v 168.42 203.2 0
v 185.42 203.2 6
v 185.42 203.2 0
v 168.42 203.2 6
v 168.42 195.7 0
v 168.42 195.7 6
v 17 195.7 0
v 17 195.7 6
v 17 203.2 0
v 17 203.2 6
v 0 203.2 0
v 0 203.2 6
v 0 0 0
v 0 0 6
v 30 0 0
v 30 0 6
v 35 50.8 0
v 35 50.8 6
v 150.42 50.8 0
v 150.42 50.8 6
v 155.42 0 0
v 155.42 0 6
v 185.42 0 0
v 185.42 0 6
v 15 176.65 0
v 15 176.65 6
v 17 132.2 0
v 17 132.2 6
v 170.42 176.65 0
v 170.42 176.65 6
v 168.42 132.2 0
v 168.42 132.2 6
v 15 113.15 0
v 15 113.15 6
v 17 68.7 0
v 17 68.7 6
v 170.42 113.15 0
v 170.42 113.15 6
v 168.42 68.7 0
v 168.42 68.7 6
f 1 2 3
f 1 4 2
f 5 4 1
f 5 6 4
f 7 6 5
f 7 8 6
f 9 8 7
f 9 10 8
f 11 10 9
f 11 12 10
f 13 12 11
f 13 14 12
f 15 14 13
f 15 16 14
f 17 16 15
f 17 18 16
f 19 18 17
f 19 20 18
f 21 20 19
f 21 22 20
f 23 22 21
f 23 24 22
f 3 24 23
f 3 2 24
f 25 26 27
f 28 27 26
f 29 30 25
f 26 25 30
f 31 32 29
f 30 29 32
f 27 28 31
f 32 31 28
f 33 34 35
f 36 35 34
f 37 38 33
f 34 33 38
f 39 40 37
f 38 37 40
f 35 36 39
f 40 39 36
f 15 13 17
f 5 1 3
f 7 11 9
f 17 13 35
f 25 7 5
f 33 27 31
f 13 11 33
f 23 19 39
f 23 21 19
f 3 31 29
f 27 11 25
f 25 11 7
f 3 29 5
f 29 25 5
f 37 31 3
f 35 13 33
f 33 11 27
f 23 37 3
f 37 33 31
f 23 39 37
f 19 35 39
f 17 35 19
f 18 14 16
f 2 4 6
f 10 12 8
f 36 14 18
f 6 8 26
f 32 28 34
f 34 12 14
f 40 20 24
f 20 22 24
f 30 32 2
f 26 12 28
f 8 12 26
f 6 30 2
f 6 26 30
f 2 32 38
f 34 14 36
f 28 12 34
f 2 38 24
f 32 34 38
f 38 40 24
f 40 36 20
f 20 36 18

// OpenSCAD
// file: dimensions.scad
INCHES_TO_MM = 25.4;
SHELF_THICKNESS = 7.5;
SHELF_DEPTH = 7.3 * INCHES_TO_MM;
// main file
include <dimensions.scad>

SHELF_1_HEIGHT = 3 * INCHES_TO_MM;
SHELF_2_HEIGHT = 2.5 * INCHES_TO_MM;
SHELF_3_HEIGHT = 2.5 * INCHES_TO_MM;
WALL_WIDTH = 15;
WALL_THICKNESS = 6;

// Create a 2D shape with cutouts using difference() in 2D
module side_panel_2d() {
    total_height = SHELF_1_HEIGHT + SHELF_2_HEIGHT + SHELF_3_HEIGHT;
    
    wall_inner_left = WALL_WIDTH;
    wall_inner_right = SHELF_DEPTH - WALL_WIDTH;
    
    cutout_0_bottom = 0;
    cutout_0_top = cutout_0_bottom + 2*INCHES_TO_MM;
    
    cutout_1_bottom = SHELF_1_HEIGHT - SHELF_THICKNESS;
    cutout_1_top = cutout_1_bottom + 1.75 * INCHES_TO_MM;
    
    cutout_2_bottom = SHELF_1_HEIGHT + SHELF_2_HEIGHT - SHELF_THICKNESS;
    cutout_2_top = cutout_2_bottom + 1.75 * INCHES_TO_MM;
    
    cutout_3_bottom = SHELF_1_HEIGHT + SHELF_2_HEIGHT + SHELF_3_HEIGHT - SHELF_THICKNESS;
    cutout_3_top = total_height;


    difference() {
        // Outer shape - could be a polygon or other 2D shape
        polygon(points=[[0,0], [SHELF_DEPTH,0], [SHELF_DEPTH, total_height], [0, total_height]]);
        polygon(points=[[30, cutout_0_bottom], [SHELF_DEPTH - 30, cutout_0_bottom], [SHELF_DEPTH - 35, cutout_0_top], [35, cutout_0_top]]);
        polygon(points=[[wall_inner_left + 2, cutout_1_bottom], [wall_inner_right - 2, cutout_1_bottom], [wall_inner_right, cutout_1_top], [wall_inner_left, cutout_1_top]]);
        polygon(points=[[wall_inner_left + 2, cutout_2_bottom], [wall_inner_right - 2, cutout_2_bottom], [wall_inner_right, cutout_2_top], [wall_inner_left, cutout_2_top]]);
        polygon(points=[[wall_inner_left + 2, cutout_3_bottom], [wall_inner_right - 2, cutout_3_bottom], [wall_inner_right - 2, cutout_3_top], [wall_inner_left + 2, cutout_3_top]]);
    }
}

// Then extrude the 2D shape to get your 3D object
module side_panel_3d() {
    linear_extrude(height=WALL_THICKNESS) side_panel_2d();
}

// Display the 3D side panel
side_panel_3d();

// color("red") translate([WALL_WIDTH + 3, SHELF_1_HEIGHT - SHELF_THICKNESS, -10]) cube([SHELF_DEPTH - 2*WALL_WIDTH - 2*3, SHELF_THICKNESS, 20]);
// color("blue") translate([WALL_WIDTH + 3, SHELF_1_HEIGHT + SHELF_2_HEIGHT - SHELF_THICKNESS, -10]) cube([SHELF_DEPTH - 2*WALL_WIDTH - 2*3, SHELF_THICKNESS, 20]); 
// color("green") translate([WALL_WIDTH + 3, SHELF_1_HEIGHT + SHELF_2_HEIGHT + SHELF_3_HEIGHT - SHELF_THICKNESS, -10]) cube([SHELF_DEPTH - 2*WALL_WIDTH - 2*3, SHELF_THICKNESS, 20]); 
